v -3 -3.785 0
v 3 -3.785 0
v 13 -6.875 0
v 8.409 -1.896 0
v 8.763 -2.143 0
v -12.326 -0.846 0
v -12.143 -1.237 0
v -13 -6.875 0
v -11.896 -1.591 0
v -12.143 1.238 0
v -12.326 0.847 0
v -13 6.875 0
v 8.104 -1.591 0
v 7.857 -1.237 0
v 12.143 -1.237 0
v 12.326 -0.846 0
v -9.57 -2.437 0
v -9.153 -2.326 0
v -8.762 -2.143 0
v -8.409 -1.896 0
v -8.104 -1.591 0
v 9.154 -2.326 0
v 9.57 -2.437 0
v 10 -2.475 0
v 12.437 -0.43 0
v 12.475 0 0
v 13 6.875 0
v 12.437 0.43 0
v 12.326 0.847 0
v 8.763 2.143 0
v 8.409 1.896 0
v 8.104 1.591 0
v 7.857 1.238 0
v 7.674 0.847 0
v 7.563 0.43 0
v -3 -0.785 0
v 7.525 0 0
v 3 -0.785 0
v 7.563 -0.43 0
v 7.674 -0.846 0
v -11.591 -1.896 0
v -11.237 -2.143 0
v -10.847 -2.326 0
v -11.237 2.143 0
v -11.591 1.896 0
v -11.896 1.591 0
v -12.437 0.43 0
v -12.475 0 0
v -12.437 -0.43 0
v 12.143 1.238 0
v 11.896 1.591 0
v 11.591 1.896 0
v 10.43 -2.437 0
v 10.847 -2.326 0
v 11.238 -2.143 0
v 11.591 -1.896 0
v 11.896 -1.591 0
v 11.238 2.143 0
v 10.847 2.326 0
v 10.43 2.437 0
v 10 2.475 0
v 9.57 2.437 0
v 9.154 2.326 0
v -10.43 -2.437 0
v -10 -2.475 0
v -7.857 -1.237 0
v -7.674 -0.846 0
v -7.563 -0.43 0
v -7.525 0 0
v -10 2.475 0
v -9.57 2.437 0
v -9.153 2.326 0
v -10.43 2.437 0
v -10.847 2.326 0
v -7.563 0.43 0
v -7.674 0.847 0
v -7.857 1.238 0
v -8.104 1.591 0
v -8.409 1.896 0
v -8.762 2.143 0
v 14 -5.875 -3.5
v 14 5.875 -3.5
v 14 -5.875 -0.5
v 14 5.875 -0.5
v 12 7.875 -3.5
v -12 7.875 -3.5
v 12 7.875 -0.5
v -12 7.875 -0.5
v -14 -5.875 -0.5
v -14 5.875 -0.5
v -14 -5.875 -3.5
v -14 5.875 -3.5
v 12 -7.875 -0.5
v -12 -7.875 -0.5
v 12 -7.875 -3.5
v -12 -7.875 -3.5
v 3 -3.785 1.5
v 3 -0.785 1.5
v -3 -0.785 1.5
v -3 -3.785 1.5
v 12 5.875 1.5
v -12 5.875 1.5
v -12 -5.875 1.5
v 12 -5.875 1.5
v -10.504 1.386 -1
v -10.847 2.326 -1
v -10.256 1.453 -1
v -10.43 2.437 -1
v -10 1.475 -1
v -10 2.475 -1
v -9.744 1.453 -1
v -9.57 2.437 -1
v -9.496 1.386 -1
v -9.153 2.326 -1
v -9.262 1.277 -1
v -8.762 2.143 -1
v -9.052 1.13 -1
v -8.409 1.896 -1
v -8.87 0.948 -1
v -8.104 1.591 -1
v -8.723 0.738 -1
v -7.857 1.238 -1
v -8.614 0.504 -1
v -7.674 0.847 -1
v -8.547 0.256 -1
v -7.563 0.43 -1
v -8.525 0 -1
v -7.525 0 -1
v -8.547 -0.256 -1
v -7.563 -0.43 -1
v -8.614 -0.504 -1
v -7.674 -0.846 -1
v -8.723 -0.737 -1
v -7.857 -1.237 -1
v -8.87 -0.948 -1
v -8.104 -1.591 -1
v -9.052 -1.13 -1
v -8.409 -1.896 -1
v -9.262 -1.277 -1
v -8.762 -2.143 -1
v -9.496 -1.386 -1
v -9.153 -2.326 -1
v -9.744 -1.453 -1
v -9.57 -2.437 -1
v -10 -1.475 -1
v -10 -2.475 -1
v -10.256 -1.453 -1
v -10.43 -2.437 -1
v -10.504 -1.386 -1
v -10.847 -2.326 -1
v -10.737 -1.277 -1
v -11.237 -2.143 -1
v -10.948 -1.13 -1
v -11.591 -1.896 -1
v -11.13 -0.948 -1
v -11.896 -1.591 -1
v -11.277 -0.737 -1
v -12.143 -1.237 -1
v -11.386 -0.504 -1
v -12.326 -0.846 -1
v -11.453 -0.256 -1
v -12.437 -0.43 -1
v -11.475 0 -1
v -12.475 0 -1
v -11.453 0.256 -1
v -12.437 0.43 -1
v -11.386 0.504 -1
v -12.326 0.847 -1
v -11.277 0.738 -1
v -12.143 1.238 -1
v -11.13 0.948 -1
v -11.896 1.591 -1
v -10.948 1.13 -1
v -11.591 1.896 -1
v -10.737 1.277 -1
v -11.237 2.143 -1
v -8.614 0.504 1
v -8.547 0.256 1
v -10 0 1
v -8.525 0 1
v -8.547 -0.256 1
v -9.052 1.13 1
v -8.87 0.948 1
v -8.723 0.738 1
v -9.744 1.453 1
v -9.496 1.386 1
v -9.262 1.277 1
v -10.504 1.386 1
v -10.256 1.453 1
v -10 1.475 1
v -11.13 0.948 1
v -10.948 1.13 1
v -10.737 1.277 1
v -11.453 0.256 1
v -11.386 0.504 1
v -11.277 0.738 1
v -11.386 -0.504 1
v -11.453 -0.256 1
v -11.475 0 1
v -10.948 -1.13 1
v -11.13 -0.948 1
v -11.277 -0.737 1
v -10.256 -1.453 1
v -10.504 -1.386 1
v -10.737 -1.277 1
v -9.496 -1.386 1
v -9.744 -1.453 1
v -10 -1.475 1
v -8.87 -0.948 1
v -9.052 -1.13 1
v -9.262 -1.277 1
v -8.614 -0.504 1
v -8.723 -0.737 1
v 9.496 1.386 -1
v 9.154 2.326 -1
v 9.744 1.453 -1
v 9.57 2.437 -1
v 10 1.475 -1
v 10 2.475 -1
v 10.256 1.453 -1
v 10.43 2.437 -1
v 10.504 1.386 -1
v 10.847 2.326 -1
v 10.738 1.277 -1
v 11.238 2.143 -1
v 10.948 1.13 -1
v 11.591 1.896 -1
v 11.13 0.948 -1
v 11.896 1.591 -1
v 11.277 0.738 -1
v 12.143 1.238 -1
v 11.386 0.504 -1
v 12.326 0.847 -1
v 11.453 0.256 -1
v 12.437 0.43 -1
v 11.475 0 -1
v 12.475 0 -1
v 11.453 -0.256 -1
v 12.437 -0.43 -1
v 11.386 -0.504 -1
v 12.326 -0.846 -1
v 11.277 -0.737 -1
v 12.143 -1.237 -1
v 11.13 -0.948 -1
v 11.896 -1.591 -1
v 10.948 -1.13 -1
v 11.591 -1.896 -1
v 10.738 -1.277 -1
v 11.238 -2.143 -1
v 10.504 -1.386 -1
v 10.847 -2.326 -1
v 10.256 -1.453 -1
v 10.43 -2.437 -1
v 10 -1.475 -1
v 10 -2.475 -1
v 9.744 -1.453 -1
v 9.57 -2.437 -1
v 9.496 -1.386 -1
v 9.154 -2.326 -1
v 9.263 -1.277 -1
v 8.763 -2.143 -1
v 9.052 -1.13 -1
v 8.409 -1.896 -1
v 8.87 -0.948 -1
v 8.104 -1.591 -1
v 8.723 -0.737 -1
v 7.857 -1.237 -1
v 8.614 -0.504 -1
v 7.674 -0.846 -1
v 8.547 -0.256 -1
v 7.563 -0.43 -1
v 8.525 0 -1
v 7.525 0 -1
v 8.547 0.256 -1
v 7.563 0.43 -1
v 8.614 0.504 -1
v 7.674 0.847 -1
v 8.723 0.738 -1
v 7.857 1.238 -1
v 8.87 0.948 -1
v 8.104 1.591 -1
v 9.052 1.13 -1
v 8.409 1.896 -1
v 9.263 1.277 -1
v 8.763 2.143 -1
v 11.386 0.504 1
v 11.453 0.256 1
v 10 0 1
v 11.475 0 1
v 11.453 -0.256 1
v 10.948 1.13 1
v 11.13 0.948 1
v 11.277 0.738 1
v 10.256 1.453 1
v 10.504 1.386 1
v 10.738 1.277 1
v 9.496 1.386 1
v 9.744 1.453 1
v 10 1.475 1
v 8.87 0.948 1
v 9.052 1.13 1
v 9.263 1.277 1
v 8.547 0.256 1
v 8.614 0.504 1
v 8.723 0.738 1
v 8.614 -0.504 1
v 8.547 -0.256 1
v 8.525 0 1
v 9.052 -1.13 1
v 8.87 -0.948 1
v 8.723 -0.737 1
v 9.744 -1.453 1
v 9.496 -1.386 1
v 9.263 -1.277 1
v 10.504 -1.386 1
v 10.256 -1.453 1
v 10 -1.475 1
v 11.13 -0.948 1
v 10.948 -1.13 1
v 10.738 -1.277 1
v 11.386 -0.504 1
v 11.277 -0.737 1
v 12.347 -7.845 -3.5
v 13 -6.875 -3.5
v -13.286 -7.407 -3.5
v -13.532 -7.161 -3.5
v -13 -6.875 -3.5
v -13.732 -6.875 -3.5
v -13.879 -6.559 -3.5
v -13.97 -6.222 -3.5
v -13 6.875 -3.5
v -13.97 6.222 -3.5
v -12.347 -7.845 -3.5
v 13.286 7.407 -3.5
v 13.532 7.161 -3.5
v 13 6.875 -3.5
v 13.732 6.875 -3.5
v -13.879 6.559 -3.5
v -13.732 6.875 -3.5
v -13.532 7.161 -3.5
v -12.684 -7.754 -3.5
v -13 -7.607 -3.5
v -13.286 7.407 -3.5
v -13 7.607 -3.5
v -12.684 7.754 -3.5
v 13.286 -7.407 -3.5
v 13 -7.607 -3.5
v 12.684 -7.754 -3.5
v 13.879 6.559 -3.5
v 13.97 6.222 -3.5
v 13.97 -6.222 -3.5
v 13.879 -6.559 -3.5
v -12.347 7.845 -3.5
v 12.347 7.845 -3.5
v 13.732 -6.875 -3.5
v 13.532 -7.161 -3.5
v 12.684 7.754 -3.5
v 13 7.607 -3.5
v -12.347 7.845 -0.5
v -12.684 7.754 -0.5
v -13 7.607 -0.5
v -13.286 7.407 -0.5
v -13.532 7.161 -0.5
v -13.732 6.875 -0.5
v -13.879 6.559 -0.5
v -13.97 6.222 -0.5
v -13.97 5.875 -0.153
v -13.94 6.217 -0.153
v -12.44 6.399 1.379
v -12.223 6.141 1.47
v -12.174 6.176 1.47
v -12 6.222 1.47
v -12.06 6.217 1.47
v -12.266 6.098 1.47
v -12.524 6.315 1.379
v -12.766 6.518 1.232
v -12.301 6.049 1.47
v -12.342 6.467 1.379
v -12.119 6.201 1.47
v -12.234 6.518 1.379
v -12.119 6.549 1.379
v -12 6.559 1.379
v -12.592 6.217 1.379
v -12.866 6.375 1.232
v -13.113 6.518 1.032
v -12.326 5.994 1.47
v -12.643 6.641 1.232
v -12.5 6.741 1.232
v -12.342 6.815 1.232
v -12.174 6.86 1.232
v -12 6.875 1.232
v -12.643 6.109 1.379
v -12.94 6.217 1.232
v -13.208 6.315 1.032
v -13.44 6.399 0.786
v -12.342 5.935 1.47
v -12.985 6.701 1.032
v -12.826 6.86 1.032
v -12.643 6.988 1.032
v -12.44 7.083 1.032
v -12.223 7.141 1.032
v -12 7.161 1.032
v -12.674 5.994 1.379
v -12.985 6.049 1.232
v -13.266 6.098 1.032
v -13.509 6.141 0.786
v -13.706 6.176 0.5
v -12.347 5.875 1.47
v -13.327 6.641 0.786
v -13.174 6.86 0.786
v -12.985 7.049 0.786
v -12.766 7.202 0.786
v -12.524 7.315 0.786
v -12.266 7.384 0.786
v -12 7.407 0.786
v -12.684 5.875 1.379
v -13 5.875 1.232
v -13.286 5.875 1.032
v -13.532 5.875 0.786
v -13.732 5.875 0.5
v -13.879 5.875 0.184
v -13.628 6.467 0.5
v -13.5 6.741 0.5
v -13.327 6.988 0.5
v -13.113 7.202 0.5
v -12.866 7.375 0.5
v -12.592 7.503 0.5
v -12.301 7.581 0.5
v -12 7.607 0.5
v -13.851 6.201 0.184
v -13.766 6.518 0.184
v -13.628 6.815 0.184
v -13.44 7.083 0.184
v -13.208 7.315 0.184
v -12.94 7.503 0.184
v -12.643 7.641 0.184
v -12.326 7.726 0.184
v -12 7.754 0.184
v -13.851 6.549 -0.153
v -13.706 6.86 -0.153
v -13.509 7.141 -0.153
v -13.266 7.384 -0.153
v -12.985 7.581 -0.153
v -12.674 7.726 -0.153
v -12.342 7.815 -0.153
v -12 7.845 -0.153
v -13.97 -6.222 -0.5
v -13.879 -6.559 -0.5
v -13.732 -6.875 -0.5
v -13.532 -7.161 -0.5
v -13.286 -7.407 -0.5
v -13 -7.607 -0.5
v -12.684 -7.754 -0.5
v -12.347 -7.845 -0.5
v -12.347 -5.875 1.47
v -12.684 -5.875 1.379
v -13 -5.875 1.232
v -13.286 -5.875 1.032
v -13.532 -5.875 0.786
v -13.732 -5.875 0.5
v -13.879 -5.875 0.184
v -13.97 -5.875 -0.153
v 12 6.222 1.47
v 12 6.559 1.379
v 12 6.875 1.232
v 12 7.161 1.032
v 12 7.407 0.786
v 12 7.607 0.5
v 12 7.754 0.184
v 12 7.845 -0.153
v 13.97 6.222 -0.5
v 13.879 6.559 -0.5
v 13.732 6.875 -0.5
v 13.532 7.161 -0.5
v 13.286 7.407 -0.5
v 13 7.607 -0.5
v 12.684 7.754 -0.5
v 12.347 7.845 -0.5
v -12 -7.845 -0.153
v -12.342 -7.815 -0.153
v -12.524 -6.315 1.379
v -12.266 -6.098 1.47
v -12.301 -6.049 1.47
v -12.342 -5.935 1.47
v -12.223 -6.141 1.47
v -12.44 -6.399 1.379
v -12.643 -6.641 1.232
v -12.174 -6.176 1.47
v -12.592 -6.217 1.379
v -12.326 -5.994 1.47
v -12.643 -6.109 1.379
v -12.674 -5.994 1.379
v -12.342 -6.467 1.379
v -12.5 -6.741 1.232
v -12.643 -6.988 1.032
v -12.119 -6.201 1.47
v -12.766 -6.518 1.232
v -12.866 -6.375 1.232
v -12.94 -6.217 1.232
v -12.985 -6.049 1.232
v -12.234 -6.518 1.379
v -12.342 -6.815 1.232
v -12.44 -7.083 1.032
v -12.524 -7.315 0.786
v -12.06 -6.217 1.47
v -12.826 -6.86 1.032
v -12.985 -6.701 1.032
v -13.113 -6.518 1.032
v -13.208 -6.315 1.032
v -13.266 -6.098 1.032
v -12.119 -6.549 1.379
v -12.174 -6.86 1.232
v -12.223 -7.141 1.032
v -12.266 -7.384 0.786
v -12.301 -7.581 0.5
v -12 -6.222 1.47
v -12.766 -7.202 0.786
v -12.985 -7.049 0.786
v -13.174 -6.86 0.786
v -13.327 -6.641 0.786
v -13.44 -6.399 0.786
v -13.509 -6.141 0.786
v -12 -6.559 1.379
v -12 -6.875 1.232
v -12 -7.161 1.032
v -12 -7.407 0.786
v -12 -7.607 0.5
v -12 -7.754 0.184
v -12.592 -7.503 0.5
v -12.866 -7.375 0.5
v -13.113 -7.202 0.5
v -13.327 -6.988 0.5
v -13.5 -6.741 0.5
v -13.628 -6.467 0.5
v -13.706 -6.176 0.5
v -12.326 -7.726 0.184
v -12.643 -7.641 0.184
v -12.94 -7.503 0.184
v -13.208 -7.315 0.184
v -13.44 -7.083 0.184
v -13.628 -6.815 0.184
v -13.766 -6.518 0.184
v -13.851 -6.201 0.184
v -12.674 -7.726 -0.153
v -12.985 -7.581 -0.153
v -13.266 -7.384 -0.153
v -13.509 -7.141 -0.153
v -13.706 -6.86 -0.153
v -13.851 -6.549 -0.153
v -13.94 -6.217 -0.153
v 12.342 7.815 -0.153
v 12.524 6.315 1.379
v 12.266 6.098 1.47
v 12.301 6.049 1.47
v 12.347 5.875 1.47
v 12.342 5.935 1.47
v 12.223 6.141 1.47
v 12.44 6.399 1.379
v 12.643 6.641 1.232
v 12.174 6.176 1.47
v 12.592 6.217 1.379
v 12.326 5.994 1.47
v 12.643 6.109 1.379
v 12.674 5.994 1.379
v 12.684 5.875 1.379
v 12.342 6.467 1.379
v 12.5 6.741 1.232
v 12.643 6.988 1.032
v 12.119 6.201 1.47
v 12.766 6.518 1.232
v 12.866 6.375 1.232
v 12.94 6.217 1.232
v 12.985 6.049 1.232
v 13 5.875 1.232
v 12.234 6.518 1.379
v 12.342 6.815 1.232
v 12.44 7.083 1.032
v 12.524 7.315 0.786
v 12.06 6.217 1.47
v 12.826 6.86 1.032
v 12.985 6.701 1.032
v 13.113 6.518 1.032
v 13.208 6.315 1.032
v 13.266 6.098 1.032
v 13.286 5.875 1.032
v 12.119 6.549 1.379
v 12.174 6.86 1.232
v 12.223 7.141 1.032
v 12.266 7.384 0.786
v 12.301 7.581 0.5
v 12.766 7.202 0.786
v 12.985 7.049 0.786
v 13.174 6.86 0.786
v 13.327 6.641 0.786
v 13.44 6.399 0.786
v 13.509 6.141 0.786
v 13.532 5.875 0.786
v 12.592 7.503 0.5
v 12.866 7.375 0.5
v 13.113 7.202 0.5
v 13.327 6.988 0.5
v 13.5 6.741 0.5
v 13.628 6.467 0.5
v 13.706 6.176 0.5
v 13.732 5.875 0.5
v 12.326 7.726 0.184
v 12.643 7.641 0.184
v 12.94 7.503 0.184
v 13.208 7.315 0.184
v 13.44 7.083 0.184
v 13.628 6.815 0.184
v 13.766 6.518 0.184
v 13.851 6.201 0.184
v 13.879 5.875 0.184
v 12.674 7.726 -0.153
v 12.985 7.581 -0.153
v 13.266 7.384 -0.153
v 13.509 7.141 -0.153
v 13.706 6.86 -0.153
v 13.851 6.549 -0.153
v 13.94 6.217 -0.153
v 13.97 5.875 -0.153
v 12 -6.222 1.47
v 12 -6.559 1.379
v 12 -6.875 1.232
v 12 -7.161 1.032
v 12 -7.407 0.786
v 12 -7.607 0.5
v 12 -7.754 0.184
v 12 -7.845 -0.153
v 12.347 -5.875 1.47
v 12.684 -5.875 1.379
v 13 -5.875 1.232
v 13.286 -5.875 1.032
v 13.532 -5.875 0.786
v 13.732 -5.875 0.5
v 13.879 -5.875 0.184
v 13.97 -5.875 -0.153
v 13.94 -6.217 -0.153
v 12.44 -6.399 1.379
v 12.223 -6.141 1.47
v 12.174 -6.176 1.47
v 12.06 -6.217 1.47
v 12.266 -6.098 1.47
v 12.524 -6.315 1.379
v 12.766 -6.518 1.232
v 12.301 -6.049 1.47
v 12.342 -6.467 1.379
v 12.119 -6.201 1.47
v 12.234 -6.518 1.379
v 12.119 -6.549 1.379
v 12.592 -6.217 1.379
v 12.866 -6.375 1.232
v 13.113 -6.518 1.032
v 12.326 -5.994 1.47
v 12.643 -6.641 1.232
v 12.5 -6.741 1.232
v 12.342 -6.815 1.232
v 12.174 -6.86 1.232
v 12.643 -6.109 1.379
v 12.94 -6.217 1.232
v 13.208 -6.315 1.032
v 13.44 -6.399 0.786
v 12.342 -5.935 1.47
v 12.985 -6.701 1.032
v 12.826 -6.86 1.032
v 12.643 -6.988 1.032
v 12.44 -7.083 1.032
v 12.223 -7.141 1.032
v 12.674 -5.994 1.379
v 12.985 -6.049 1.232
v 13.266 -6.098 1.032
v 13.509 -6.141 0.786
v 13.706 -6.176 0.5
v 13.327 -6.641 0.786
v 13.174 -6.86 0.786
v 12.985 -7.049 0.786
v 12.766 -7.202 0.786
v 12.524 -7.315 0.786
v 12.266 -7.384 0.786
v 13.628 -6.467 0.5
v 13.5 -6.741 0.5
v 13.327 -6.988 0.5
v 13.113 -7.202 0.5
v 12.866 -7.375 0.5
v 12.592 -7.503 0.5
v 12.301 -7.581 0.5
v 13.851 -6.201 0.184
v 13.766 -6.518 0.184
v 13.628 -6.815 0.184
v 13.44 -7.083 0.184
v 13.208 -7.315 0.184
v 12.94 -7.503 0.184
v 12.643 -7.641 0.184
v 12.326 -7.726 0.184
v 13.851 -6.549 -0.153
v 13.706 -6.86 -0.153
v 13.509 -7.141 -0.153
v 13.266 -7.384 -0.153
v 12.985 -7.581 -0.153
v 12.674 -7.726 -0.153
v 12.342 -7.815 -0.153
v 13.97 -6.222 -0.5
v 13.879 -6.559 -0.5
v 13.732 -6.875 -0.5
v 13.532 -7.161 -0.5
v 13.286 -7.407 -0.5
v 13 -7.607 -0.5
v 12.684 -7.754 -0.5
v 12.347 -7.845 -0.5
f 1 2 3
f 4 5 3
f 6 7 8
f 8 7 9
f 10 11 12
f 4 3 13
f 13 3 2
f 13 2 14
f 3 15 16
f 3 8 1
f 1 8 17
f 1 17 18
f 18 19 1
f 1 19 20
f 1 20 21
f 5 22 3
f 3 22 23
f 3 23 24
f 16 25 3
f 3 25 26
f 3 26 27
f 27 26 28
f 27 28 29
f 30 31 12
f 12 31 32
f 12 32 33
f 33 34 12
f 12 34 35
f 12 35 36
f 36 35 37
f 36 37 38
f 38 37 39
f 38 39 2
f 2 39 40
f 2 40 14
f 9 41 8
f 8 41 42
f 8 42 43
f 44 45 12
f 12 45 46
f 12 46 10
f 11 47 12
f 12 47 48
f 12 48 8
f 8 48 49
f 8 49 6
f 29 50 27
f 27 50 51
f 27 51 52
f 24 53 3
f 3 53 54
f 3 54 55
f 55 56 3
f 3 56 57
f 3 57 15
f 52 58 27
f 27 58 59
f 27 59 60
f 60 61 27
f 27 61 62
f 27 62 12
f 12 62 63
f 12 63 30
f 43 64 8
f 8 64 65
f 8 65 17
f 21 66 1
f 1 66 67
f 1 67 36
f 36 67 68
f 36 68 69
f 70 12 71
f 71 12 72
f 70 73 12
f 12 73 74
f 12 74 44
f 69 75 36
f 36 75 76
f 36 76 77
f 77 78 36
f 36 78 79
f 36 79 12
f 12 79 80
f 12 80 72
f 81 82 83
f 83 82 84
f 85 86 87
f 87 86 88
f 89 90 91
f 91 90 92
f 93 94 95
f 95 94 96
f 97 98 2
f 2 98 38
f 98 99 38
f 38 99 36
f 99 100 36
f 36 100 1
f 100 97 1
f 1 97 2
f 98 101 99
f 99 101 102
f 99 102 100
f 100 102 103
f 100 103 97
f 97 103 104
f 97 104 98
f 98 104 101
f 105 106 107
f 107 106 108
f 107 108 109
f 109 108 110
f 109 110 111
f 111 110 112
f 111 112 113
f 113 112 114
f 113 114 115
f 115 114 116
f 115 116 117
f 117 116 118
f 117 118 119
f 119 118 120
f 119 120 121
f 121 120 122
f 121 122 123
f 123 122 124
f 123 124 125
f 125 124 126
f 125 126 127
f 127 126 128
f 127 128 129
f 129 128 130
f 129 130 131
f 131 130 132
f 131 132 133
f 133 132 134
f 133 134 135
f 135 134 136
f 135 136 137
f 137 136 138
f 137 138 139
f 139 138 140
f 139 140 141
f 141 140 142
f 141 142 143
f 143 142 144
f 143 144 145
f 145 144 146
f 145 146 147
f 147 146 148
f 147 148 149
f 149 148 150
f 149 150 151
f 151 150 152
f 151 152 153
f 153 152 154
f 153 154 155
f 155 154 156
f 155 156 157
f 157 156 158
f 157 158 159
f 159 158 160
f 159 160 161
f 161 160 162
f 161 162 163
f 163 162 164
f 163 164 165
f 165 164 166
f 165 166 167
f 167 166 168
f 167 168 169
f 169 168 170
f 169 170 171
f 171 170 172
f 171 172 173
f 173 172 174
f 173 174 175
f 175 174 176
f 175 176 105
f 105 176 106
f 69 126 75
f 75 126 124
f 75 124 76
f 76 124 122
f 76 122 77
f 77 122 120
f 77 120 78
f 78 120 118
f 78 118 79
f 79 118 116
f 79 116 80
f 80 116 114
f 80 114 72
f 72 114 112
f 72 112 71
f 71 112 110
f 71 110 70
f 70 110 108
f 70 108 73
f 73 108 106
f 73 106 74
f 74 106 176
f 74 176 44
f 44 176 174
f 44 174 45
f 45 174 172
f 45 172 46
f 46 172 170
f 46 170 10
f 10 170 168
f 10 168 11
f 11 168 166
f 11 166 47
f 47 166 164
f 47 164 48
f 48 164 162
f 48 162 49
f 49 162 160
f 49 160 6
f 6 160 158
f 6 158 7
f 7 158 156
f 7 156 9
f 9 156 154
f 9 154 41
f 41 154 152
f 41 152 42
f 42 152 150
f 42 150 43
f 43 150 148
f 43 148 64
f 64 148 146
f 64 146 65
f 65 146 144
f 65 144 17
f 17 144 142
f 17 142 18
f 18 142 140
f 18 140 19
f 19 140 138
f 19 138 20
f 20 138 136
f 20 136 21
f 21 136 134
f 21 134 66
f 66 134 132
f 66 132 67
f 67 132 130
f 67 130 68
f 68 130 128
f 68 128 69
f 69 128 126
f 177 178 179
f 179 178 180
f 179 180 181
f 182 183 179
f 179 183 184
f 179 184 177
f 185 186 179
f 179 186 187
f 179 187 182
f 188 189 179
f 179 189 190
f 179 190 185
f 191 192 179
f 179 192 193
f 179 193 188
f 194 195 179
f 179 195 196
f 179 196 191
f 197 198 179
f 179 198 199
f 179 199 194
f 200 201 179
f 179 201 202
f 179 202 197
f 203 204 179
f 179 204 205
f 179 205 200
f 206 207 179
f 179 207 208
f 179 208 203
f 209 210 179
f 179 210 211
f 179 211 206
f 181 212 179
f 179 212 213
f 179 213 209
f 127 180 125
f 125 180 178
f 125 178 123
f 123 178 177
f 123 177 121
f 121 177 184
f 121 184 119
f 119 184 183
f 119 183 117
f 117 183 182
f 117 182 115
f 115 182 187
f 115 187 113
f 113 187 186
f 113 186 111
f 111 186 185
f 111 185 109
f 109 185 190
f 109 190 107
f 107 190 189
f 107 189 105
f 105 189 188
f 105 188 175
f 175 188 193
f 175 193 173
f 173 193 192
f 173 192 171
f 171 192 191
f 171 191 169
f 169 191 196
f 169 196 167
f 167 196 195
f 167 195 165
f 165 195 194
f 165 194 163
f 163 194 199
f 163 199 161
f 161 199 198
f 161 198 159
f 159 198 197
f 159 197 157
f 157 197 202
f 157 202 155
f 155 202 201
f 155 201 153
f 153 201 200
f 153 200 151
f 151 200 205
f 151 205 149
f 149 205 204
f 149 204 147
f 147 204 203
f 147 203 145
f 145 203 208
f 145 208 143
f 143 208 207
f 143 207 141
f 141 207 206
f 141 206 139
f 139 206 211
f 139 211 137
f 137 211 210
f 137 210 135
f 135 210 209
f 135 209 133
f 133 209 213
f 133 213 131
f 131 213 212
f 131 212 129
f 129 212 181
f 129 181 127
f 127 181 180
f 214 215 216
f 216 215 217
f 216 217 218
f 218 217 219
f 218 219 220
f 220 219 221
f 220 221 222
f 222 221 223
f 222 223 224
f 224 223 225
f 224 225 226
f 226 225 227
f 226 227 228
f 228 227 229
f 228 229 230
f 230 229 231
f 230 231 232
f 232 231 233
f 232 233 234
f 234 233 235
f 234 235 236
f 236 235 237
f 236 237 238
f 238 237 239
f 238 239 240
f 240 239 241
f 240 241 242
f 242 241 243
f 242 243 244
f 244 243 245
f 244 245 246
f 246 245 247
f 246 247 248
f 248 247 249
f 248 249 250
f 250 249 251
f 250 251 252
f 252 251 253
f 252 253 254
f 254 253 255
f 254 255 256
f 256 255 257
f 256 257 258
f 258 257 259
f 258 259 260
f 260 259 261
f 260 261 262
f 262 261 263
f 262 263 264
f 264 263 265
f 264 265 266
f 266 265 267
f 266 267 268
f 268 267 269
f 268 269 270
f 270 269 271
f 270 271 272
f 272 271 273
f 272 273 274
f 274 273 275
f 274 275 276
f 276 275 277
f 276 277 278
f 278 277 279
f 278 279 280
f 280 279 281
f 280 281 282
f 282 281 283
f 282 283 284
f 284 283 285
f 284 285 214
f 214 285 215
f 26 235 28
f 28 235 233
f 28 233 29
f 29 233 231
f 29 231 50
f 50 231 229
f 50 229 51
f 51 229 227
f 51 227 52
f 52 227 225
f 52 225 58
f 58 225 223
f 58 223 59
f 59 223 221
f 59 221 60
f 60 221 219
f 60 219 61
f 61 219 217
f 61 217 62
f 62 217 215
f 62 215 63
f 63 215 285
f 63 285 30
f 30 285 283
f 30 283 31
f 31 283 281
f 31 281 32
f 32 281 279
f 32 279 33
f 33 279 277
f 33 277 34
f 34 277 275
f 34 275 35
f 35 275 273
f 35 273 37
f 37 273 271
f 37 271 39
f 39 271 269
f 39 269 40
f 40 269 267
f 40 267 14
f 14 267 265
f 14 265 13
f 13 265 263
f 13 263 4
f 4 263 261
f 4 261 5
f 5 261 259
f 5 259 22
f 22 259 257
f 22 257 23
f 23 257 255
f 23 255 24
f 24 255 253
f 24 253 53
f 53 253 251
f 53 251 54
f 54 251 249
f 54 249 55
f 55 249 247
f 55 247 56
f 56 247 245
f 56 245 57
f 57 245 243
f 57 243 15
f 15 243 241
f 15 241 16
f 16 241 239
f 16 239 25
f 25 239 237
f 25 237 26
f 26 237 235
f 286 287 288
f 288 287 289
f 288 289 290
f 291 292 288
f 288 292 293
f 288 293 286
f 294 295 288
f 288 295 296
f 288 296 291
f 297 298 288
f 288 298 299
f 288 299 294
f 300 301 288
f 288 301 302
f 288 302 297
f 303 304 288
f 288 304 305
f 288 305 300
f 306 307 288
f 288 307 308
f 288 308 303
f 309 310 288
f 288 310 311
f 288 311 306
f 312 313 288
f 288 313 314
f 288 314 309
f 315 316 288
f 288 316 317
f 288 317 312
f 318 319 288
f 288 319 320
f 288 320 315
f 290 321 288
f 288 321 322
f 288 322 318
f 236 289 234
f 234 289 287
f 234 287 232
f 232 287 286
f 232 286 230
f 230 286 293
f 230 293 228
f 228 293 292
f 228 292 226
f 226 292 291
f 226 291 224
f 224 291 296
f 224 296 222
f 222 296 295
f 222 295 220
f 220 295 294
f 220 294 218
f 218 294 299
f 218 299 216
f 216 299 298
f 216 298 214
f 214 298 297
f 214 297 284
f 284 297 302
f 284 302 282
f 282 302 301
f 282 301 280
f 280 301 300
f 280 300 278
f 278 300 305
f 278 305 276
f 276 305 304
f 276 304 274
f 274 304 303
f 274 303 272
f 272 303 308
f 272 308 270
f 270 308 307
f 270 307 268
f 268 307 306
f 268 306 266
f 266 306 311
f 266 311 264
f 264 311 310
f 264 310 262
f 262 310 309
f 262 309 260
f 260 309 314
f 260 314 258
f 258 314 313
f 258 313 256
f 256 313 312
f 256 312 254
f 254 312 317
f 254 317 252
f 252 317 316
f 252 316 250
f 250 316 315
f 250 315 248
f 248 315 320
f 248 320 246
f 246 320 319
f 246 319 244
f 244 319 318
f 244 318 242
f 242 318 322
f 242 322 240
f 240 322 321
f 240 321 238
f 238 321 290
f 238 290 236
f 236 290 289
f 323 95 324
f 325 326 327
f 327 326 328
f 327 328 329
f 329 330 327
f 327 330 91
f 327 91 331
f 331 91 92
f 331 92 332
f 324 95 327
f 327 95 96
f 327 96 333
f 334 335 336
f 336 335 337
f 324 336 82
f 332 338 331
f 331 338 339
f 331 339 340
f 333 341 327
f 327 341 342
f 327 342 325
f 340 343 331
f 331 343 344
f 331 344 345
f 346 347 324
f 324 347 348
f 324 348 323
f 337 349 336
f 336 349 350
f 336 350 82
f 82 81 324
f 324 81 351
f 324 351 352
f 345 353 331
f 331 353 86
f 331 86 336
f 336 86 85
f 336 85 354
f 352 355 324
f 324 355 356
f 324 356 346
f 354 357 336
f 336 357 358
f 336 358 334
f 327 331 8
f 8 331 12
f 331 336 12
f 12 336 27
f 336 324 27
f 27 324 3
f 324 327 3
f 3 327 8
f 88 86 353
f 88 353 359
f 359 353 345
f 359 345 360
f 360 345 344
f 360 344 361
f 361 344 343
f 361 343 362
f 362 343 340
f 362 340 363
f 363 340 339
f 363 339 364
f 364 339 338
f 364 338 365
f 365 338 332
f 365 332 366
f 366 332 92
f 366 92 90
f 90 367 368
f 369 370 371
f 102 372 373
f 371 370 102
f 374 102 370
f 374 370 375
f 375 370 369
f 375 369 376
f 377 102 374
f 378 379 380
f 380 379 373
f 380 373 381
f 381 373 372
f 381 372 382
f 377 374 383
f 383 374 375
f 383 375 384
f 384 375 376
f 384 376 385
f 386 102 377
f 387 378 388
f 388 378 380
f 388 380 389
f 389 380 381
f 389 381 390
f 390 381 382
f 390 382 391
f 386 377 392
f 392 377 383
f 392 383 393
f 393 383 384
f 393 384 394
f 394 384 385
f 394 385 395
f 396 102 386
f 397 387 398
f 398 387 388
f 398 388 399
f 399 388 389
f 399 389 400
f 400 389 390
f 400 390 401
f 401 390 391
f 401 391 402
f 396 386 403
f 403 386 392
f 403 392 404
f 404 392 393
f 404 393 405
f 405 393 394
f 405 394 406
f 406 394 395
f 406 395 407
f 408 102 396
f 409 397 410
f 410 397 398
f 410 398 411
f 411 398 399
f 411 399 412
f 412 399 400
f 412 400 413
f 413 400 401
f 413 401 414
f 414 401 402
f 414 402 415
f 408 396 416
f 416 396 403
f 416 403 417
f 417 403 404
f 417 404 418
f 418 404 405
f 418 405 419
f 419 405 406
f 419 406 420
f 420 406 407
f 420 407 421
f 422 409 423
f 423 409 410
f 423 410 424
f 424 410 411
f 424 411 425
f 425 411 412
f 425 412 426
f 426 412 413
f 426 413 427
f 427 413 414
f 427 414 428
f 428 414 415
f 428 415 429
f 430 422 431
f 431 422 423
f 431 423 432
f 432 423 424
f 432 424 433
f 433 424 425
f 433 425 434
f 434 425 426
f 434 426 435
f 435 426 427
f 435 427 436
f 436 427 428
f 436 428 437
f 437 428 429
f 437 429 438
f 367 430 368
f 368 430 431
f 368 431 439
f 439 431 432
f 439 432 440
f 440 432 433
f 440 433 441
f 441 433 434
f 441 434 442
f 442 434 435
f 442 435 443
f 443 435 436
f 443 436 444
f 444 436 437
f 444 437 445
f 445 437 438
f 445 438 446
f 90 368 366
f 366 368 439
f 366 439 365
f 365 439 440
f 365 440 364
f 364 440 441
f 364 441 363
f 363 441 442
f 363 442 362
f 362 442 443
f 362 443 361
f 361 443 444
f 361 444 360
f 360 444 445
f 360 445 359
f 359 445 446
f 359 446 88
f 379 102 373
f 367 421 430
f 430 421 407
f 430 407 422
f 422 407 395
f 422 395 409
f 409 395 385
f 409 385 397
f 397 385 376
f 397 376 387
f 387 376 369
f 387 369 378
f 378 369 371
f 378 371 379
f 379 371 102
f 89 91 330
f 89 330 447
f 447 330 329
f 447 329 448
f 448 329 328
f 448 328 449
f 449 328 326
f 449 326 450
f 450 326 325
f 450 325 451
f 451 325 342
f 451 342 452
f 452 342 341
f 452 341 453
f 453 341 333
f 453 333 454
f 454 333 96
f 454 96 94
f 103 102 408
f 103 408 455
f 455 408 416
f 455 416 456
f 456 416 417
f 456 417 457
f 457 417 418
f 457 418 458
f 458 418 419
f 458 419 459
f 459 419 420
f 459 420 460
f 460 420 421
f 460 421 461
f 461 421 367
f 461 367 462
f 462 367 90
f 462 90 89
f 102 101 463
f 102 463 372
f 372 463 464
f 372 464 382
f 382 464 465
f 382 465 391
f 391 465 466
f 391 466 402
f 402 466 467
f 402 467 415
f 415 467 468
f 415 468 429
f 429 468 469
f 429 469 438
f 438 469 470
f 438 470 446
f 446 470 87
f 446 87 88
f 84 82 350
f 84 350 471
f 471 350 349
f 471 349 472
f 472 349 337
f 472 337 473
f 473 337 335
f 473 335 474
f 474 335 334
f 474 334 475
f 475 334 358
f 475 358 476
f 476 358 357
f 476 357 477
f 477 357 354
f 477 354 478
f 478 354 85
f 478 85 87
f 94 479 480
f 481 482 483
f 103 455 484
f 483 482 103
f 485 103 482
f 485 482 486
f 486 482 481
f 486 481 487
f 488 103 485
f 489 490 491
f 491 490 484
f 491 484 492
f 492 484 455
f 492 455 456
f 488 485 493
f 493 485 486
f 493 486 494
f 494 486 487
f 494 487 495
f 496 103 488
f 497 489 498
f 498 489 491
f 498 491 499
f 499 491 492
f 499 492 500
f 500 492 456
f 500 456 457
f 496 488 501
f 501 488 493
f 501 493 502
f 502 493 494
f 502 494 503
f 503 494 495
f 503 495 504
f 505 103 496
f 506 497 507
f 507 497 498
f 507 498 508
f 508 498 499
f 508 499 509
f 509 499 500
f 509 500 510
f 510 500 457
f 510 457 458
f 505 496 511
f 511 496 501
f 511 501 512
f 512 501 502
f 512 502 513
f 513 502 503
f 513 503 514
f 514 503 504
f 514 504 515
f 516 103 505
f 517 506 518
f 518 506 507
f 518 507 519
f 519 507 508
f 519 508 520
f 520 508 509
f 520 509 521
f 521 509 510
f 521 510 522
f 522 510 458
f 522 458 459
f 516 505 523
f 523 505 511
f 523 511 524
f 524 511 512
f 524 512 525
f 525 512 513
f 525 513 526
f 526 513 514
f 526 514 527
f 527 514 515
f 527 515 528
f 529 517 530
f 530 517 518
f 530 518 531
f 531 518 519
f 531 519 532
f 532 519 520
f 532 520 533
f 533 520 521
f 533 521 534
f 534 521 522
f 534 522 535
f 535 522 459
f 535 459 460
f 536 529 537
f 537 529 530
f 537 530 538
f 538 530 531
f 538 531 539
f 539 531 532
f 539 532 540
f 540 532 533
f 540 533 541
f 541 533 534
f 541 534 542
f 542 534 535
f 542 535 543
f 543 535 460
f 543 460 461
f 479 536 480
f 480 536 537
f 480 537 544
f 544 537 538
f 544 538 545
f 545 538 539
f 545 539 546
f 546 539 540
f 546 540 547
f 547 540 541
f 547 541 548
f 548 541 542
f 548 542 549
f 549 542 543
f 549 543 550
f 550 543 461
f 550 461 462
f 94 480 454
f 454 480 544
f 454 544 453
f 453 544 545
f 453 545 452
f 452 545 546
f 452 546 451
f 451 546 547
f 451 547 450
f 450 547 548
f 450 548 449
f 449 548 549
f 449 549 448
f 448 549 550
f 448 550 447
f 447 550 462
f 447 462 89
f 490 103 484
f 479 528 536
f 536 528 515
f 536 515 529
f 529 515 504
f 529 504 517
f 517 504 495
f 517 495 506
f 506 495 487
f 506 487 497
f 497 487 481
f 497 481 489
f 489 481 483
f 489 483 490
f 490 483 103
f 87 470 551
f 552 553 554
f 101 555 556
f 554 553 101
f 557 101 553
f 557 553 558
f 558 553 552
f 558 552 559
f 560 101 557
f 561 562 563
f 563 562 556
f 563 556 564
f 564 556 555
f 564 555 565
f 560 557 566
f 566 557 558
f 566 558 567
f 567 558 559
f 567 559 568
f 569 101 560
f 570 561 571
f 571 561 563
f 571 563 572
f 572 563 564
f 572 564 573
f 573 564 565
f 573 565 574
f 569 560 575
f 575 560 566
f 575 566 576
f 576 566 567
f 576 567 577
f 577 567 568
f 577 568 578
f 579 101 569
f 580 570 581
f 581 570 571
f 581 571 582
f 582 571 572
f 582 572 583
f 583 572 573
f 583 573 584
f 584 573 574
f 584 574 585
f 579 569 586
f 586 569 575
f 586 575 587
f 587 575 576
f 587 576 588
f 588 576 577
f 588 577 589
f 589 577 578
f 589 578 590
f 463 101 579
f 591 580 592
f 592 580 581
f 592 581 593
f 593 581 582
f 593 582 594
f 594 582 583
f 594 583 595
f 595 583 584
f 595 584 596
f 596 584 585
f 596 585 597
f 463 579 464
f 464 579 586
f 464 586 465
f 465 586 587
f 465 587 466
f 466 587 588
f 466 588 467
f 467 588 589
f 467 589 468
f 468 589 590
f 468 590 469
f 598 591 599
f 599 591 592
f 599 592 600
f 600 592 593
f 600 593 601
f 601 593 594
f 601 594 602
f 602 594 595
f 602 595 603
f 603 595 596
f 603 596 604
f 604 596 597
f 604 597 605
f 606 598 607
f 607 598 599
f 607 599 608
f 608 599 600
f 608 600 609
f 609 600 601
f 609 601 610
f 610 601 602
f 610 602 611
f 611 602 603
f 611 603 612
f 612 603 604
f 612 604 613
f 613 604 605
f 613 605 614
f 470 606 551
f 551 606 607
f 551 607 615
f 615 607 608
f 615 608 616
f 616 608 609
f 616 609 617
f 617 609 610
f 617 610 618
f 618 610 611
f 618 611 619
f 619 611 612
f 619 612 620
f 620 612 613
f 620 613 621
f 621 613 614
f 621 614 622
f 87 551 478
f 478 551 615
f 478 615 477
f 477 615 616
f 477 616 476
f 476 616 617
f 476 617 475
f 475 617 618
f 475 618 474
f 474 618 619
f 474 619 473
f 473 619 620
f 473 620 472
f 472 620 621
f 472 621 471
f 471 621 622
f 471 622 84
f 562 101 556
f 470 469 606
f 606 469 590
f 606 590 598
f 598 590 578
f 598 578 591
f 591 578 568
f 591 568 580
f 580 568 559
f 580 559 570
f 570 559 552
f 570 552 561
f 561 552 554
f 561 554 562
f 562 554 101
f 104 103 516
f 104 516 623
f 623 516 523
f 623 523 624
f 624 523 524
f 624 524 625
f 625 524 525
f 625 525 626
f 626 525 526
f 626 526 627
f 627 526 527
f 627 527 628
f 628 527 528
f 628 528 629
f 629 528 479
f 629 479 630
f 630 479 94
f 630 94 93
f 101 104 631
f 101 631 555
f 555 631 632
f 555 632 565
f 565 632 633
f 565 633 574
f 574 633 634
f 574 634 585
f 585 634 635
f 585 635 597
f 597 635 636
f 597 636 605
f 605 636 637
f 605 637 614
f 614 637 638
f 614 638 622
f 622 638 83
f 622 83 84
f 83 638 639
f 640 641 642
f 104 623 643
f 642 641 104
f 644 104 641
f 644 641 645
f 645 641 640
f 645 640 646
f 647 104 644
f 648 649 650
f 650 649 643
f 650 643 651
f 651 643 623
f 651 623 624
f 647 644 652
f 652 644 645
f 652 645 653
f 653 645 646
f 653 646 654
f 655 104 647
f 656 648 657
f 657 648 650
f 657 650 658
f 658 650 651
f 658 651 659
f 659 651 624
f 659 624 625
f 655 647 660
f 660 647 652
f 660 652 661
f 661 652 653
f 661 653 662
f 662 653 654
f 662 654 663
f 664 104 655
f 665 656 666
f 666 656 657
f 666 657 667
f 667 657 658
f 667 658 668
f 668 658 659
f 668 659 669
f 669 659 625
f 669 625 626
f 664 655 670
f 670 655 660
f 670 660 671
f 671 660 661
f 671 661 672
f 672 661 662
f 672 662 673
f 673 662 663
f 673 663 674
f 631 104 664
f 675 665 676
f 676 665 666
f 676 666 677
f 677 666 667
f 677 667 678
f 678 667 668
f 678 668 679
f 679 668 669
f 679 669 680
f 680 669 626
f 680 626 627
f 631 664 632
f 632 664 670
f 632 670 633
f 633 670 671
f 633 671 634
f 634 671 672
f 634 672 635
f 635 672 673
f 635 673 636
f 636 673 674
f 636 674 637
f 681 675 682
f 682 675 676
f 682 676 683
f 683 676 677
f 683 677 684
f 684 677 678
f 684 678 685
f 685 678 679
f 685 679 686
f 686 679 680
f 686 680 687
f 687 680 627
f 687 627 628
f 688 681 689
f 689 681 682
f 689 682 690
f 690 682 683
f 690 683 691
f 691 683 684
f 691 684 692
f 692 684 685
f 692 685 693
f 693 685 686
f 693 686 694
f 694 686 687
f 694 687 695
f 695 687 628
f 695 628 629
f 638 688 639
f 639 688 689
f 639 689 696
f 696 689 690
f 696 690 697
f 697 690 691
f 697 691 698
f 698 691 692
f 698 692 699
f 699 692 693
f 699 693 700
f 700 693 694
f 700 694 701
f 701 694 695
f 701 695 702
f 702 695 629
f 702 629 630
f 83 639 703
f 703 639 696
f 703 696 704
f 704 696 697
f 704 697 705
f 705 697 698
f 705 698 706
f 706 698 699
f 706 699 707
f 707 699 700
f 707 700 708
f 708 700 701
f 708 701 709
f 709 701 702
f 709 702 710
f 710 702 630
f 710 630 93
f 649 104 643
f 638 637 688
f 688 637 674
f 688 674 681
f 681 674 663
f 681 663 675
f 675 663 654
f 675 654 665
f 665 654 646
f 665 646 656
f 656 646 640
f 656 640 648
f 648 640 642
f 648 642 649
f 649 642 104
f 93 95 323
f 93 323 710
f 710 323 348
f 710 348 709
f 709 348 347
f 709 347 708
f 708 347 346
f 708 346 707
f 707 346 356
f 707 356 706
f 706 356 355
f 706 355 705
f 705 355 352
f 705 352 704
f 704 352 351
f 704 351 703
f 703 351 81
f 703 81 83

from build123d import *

# Parameters (mm, degrees)
SKETCH1_W           = 28
SKETCH1_H           = 15.75
SKETCH1_W_2         = 6
SKETCH1_H_2         = 3
BOSS_EXTRUDE1_DEPTH = 1
CUT_EXTRUDE1_REACH  = 18.094
SKETCH2_R           = 1.475
SKETCH5_W           = 28
SKETCH5_H           = 15.75
SKETCH5_W_2         = 6
SKETCH5_H_2         = 3
BOSS_EXTRUDE4_DEPTH = 0.5
SKETCH3_R           = 2.475
SKETCH3_R_2         = 1.475
BOSS_EXTRUDE2_DEPTH = 1
SKETCH4_W           = 28
SKETCH4_H           = 15.75
SKETCH4_W_2         = 26
SKETCH4_H_2         = 13.75
BOSS_EXTRUDE3_DEPTH = 3.5
FILLET1_R           = 2


with BuildPart() as part:
    # Sketch1 → Boss-Extrude1 (new body)
    with BuildSketch(Plane.XY):
        Rectangle(SKETCH1_W, SKETCH1_H)
        with Locations((0, -2.285)):
            Rectangle(SKETCH1_W_2, SKETCH1_H_2, mode=Mode.SUBTRACT)
    extrude(amount=BOSS_EXTRUDE1_DEPTH)

    # Sketch2 → Cut-Extrude1 (cut, up to next)
    with BuildSketch(Plane.XY.offset(1), mode=Mode.PRIVATE) as cut_extrude1_sk1:
        with Locations((10, 0)):
            Circle(SKETCH2_R)
    cut_extrude1_tool1 = extrude(cut_extrude1_sk1.sketch, amount=-CUT_EXTRUDE1_REACH, mode=Mode.PRIVATE) & part.part
    # Sketch2 → Cut-Extrude1 (cut, up to next)
    with BuildSketch(Plane.XY.offset(1), mode=Mode.PRIVATE) as cut_extrude1_sk2:
        with Locations((-10, 0)):
            Circle(SKETCH2_R)
    cut_extrude1_tool2 = extrude(cut_extrude1_sk2.sketch, amount=-CUT_EXTRUDE1_REACH, mode=Mode.PRIVATE) & part.part
    add(cut_extrude1_tool1.solids().sort_by_distance((10, 0, 1))[0], mode=Mode.SUBTRACT)
    add(cut_extrude1_tool2.solids().sort_by_distance((-10, 0, 1))[0], mode=Mode.SUBTRACT)

    # Sketch5 → Boss-Extrude4 (add)
    with BuildSketch(Plane.XY.offset(1)):
        Rectangle(SKETCH5_W, SKETCH5_H)
        with Locations((0, -2.285)):
            Rectangle(SKETCH5_W_2, SKETCH5_H_2, mode=Mode.SUBTRACT)
    extrude(amount=BOSS_EXTRUDE4_DEPTH)

    # Sketch3 → Boss-Extrude2 (add)
    # profile 1 of 2: a face of its own
    with BuildSketch(Plane(origin=(0, 0, 0), x_dir=(-1, 0, 0), z_dir=(0, 0, -1))):
        with Locations(Location((-10, 0, 0), (0, 0, 180))):
            Circle(SKETCH3_R)
        with Locations(Location((-10, 0, 0), (0, 0, 180))):
            Circle(SKETCH3_R_2, mode=Mode.SUBTRACT)
    # profile 2 of 2: a face of its own
    with BuildSketch(Plane(origin=(0, 0, 0), x_dir=(-1, 0, 0), z_dir=(0, 0, -1))):
        with Locations(Location((10, 0, 0), (0, 0, 180))):
            Circle(SKETCH3_R)
        with Locations(Location((10, 0, 0), (0, 0, 180))):
            Circle(SKETCH3_R_2, mode=Mode.SUBTRACT)
    extrude(amount=BOSS_EXTRUDE2_DEPTH)

    # Sketch4 → Boss-Extrude3 (add)
    with BuildSketch(Plane(origin=(0, 0, 0), x_dir=(-1, 0, 0), z_dir=(0, 0, -1))):
        Rectangle(SKETCH4_W, SKETCH4_H)
        Rectangle(SKETCH4_W_2, SKETCH4_H_2, mode=Mode.SUBTRACT)
    extrude(amount=BOSS_EXTRUDE3_DEPTH)

    # Fillet1
    fillet1_edges = [part.edges().sort_by_distance(p)[0] for p in [
        (0, -7.875, 1.5),
        (14, 0, 1.5),
        (0, 7.875, 1.5),
        (-14, 0, 1.5),
        (14, -7.875, -1),
        (-14, -7.875, -1),
        (-14, 7.875, -1),
        (14, 7.875, -1),
    ]]
    fillet(fillet1_edges, radius=FILLET1_R)


solid = part.part
